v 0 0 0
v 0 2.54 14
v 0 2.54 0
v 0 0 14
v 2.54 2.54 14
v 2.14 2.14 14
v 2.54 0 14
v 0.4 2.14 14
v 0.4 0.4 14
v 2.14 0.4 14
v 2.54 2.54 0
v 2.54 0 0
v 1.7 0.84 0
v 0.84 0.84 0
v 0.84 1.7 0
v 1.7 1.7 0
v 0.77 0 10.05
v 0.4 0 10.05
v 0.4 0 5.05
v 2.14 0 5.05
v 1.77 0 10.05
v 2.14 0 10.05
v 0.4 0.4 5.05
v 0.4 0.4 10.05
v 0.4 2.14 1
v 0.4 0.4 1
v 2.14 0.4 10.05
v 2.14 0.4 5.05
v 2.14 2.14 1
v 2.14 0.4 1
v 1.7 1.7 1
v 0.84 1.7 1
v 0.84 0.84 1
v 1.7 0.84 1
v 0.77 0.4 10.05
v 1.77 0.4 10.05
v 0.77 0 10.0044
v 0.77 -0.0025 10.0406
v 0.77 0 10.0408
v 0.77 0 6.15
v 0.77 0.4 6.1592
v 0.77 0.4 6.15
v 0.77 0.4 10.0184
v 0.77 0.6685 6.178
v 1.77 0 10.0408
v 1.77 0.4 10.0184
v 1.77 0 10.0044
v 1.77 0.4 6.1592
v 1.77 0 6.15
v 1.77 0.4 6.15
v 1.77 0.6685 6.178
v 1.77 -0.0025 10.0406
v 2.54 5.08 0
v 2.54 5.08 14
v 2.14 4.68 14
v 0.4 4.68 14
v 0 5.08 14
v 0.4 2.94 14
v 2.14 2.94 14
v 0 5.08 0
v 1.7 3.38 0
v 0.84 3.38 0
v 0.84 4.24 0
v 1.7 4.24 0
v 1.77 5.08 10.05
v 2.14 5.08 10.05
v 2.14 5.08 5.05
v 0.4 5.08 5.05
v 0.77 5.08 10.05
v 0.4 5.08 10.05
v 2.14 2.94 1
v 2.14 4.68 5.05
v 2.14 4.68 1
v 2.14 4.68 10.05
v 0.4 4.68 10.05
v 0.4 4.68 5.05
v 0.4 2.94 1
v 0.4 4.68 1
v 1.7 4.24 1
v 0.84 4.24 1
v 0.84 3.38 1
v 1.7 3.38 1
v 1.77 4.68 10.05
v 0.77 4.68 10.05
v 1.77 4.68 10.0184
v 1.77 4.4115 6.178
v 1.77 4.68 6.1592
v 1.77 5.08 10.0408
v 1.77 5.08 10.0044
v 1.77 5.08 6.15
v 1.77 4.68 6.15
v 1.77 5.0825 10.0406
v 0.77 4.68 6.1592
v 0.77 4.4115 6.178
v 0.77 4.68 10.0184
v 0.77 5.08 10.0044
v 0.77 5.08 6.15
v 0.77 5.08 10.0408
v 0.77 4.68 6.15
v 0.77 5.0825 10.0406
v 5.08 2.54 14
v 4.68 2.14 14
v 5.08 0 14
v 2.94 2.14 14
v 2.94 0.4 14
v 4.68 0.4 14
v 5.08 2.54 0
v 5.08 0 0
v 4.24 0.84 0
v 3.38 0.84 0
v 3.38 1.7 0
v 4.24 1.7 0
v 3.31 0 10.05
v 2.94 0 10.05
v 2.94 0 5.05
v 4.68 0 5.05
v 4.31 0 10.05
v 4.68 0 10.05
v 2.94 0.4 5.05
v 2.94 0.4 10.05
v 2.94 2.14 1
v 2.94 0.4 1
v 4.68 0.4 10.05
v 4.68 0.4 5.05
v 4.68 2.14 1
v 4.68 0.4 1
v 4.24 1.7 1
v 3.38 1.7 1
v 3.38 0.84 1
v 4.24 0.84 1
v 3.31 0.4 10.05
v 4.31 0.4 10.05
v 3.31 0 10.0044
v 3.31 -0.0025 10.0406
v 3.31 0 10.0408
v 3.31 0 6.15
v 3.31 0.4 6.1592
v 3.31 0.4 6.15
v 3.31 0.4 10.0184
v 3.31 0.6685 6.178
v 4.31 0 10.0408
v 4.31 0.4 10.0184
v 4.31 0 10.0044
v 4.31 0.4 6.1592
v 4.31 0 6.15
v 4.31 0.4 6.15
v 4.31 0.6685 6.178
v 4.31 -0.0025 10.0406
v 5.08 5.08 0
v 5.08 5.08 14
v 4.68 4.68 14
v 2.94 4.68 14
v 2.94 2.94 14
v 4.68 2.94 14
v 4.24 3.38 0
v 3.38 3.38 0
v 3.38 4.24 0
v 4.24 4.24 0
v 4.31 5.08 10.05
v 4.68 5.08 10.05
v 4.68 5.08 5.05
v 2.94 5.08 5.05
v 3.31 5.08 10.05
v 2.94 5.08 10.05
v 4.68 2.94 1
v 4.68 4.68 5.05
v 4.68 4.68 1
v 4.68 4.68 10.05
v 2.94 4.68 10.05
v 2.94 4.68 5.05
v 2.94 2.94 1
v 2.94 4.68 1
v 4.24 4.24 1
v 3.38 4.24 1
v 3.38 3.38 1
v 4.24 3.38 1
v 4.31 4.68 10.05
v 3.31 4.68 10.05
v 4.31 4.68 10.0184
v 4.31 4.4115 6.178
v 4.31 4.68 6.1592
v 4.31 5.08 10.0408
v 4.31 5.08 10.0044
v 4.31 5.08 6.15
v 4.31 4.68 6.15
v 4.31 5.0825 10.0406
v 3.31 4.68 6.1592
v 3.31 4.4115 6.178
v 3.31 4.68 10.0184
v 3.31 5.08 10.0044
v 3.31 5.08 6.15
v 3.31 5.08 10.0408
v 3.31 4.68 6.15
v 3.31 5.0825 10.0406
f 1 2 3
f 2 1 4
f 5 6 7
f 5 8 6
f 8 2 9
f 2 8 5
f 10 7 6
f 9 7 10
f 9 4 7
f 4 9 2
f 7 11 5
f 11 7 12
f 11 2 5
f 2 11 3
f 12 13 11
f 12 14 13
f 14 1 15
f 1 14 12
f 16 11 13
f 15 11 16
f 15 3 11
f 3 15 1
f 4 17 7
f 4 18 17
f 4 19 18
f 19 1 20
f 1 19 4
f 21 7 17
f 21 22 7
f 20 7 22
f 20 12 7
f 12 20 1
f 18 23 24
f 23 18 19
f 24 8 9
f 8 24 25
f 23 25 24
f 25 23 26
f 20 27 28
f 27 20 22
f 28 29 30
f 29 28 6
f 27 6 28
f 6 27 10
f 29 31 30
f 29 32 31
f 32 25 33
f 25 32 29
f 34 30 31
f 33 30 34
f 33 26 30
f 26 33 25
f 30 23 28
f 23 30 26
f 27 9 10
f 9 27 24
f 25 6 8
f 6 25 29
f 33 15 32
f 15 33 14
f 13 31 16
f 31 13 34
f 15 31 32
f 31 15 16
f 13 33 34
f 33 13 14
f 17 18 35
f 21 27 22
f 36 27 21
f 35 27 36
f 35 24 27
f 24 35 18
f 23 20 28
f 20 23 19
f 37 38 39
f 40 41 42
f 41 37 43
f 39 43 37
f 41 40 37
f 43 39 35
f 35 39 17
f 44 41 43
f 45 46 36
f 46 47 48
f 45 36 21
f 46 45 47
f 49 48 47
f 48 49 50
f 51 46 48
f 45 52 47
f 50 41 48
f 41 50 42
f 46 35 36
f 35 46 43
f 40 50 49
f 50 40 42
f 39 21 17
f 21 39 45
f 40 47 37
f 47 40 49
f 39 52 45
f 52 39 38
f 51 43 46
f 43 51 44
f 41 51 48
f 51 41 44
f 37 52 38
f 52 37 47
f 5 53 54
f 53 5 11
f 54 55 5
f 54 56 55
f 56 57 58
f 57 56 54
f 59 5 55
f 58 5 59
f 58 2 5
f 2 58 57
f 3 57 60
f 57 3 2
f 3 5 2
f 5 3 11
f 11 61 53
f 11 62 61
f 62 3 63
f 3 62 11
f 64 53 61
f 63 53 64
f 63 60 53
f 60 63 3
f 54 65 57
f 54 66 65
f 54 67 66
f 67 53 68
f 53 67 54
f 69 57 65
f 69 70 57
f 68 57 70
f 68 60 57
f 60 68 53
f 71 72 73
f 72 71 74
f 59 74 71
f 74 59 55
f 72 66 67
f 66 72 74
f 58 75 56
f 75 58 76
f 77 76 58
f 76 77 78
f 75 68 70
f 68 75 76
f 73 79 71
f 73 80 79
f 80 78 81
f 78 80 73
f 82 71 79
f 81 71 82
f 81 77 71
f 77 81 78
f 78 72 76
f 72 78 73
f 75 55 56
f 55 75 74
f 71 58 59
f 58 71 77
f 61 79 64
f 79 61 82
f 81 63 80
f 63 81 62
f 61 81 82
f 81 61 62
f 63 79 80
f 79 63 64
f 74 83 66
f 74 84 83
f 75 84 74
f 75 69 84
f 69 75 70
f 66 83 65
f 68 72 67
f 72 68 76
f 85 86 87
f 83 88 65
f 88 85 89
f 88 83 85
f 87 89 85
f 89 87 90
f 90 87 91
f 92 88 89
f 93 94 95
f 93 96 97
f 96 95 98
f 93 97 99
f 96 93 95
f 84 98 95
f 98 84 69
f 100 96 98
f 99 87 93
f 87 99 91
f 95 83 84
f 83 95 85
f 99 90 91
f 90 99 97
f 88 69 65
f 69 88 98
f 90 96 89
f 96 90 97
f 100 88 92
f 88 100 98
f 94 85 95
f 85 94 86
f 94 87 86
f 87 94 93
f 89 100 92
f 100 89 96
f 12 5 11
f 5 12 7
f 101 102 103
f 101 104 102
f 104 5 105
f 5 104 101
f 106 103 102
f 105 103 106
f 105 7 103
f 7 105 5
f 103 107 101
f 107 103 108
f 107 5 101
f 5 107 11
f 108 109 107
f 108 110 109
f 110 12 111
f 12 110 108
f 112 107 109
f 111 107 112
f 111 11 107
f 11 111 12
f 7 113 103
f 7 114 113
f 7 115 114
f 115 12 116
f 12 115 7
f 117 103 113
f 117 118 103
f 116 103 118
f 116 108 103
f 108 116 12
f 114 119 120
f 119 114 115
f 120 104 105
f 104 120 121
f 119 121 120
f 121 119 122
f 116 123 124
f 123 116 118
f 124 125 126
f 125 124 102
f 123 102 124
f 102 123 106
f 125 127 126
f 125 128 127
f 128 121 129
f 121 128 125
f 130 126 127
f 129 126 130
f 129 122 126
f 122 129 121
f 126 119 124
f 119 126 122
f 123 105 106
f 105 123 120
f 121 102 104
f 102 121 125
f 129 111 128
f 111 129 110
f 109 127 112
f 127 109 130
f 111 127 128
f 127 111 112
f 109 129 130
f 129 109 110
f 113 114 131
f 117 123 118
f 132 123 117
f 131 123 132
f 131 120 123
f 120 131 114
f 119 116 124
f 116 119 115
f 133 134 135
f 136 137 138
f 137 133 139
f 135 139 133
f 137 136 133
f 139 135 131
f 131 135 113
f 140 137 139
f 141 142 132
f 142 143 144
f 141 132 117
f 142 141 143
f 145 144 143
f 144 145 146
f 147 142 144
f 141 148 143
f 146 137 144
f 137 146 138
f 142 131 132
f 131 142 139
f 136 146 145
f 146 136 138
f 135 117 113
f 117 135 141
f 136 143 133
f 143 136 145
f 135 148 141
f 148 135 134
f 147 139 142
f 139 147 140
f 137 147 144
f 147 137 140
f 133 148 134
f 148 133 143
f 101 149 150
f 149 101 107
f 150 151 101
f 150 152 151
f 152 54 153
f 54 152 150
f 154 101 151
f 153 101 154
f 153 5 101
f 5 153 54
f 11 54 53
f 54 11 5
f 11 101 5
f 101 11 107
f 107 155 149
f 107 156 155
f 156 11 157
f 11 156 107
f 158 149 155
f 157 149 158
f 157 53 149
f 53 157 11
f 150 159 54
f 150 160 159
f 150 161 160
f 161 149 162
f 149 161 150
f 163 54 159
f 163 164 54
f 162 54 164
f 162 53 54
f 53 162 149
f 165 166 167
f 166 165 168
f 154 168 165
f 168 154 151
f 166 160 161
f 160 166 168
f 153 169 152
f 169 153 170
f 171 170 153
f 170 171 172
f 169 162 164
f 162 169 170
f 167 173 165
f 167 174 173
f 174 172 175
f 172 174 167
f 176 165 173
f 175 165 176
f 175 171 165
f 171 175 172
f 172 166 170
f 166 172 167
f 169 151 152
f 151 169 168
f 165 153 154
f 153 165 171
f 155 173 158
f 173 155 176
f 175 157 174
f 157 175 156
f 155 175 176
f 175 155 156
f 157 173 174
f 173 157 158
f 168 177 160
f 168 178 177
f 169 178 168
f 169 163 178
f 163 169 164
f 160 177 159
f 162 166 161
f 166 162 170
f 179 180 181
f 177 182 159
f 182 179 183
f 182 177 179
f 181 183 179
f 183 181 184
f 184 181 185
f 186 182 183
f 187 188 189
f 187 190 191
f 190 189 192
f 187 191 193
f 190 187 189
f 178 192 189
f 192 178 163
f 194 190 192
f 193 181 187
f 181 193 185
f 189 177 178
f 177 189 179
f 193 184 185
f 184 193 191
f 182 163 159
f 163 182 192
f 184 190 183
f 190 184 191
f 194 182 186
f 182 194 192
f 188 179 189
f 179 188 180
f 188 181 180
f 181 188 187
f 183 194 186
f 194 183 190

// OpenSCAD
// Customize the invocations (which follow
// the modules declarations) at the bottom of the file.

// To get these to print the fine features created
// by the "text" command, I set "Outer wall" to
// 0.22mm.

minh = 1;	// Minimum height
inch = 25.4;
$fn=50;

// BUGBUG: Does width/length need fudge for clearance?
awidth = 0.66+.20;	// Aperture width
iwidth = 1.76-.02;	// Box inside width
owidth = 2.54;	// Box outside width
oheight = 14.00; // Box overall height
theight = 8.30;	// Retention tab height
bheight = 3.90; // Pin guide height
gheight = oheight - theight - bheight; // Height of gap
twidth = 1;
tlength = 3.9;
glength = 5;

rows = 2;
cols = 2;//2;

width = 81;
length = 44.6;
//height = 2;
height = 3*inch;
oww = 2.5; // ww we must fit inside
ww = oww + 1; // Our wall width

// x, y are center, a is degrees of rotation.
module pin(x, y, a) {
    translate([x, y, oheight/2]) rotate(a) {
        // Draw a box with holes.
        difference() {
            cube([owidth, owidth, oheight], true);
            translate([0, 0, 1])
                cube([iwidth, iwidth, oheight], true);
            cube([awidth, awidth, oheight], true);
            translate([-iwidth/2, -owidth/2, -bheight/2])
                cube([iwidth, (owidth-iwidth)/2,
                        glength]);
        }
        // Put a ramp in one of the holes.
        translate([0, -owidth/2+(owidth-iwidth)/4,
                    glength-tlength]) {
            cube([twidth, (owidth-iwidth)/2, tlength], true);
            rotate([4, 0, 0])
            translate([0, (owidth-iwidth)/6, 0])
                cube([twidth, (owidth-iwidth)/2, tlength], true);
        }
    }
}

// Draw a housing.
for (i = [0: cols-1]) {
    pin((i+0.5)*owidth, 0.5*owidth, 0);
    if (rows > 1)
        pin((i+0.5)*owidth, 1.5*owidth, 180);
}

if (0) {
    // BUGBUG: Need holes for pins in this shape.
    difference() {
        cube([2*owidth, 2*owidth, oheight]);
        translate([1.5*owidth, 0.5*owidth, 0])
            cube([iwidth, iwidth, oheight], true);
        translate([1.5*owidth, 1.5*owidth, 0])
            cube([iwidth, iwidth, oheight], true);
    }
    pin(2.5*owidth, 0.5*owidth, 0);
    pin(2.5*owidth, 1.5*owidth, 180);
    translate([owidth, 0, oheight])
        cube([2*owidth, 2*owidth, 3]);
}
